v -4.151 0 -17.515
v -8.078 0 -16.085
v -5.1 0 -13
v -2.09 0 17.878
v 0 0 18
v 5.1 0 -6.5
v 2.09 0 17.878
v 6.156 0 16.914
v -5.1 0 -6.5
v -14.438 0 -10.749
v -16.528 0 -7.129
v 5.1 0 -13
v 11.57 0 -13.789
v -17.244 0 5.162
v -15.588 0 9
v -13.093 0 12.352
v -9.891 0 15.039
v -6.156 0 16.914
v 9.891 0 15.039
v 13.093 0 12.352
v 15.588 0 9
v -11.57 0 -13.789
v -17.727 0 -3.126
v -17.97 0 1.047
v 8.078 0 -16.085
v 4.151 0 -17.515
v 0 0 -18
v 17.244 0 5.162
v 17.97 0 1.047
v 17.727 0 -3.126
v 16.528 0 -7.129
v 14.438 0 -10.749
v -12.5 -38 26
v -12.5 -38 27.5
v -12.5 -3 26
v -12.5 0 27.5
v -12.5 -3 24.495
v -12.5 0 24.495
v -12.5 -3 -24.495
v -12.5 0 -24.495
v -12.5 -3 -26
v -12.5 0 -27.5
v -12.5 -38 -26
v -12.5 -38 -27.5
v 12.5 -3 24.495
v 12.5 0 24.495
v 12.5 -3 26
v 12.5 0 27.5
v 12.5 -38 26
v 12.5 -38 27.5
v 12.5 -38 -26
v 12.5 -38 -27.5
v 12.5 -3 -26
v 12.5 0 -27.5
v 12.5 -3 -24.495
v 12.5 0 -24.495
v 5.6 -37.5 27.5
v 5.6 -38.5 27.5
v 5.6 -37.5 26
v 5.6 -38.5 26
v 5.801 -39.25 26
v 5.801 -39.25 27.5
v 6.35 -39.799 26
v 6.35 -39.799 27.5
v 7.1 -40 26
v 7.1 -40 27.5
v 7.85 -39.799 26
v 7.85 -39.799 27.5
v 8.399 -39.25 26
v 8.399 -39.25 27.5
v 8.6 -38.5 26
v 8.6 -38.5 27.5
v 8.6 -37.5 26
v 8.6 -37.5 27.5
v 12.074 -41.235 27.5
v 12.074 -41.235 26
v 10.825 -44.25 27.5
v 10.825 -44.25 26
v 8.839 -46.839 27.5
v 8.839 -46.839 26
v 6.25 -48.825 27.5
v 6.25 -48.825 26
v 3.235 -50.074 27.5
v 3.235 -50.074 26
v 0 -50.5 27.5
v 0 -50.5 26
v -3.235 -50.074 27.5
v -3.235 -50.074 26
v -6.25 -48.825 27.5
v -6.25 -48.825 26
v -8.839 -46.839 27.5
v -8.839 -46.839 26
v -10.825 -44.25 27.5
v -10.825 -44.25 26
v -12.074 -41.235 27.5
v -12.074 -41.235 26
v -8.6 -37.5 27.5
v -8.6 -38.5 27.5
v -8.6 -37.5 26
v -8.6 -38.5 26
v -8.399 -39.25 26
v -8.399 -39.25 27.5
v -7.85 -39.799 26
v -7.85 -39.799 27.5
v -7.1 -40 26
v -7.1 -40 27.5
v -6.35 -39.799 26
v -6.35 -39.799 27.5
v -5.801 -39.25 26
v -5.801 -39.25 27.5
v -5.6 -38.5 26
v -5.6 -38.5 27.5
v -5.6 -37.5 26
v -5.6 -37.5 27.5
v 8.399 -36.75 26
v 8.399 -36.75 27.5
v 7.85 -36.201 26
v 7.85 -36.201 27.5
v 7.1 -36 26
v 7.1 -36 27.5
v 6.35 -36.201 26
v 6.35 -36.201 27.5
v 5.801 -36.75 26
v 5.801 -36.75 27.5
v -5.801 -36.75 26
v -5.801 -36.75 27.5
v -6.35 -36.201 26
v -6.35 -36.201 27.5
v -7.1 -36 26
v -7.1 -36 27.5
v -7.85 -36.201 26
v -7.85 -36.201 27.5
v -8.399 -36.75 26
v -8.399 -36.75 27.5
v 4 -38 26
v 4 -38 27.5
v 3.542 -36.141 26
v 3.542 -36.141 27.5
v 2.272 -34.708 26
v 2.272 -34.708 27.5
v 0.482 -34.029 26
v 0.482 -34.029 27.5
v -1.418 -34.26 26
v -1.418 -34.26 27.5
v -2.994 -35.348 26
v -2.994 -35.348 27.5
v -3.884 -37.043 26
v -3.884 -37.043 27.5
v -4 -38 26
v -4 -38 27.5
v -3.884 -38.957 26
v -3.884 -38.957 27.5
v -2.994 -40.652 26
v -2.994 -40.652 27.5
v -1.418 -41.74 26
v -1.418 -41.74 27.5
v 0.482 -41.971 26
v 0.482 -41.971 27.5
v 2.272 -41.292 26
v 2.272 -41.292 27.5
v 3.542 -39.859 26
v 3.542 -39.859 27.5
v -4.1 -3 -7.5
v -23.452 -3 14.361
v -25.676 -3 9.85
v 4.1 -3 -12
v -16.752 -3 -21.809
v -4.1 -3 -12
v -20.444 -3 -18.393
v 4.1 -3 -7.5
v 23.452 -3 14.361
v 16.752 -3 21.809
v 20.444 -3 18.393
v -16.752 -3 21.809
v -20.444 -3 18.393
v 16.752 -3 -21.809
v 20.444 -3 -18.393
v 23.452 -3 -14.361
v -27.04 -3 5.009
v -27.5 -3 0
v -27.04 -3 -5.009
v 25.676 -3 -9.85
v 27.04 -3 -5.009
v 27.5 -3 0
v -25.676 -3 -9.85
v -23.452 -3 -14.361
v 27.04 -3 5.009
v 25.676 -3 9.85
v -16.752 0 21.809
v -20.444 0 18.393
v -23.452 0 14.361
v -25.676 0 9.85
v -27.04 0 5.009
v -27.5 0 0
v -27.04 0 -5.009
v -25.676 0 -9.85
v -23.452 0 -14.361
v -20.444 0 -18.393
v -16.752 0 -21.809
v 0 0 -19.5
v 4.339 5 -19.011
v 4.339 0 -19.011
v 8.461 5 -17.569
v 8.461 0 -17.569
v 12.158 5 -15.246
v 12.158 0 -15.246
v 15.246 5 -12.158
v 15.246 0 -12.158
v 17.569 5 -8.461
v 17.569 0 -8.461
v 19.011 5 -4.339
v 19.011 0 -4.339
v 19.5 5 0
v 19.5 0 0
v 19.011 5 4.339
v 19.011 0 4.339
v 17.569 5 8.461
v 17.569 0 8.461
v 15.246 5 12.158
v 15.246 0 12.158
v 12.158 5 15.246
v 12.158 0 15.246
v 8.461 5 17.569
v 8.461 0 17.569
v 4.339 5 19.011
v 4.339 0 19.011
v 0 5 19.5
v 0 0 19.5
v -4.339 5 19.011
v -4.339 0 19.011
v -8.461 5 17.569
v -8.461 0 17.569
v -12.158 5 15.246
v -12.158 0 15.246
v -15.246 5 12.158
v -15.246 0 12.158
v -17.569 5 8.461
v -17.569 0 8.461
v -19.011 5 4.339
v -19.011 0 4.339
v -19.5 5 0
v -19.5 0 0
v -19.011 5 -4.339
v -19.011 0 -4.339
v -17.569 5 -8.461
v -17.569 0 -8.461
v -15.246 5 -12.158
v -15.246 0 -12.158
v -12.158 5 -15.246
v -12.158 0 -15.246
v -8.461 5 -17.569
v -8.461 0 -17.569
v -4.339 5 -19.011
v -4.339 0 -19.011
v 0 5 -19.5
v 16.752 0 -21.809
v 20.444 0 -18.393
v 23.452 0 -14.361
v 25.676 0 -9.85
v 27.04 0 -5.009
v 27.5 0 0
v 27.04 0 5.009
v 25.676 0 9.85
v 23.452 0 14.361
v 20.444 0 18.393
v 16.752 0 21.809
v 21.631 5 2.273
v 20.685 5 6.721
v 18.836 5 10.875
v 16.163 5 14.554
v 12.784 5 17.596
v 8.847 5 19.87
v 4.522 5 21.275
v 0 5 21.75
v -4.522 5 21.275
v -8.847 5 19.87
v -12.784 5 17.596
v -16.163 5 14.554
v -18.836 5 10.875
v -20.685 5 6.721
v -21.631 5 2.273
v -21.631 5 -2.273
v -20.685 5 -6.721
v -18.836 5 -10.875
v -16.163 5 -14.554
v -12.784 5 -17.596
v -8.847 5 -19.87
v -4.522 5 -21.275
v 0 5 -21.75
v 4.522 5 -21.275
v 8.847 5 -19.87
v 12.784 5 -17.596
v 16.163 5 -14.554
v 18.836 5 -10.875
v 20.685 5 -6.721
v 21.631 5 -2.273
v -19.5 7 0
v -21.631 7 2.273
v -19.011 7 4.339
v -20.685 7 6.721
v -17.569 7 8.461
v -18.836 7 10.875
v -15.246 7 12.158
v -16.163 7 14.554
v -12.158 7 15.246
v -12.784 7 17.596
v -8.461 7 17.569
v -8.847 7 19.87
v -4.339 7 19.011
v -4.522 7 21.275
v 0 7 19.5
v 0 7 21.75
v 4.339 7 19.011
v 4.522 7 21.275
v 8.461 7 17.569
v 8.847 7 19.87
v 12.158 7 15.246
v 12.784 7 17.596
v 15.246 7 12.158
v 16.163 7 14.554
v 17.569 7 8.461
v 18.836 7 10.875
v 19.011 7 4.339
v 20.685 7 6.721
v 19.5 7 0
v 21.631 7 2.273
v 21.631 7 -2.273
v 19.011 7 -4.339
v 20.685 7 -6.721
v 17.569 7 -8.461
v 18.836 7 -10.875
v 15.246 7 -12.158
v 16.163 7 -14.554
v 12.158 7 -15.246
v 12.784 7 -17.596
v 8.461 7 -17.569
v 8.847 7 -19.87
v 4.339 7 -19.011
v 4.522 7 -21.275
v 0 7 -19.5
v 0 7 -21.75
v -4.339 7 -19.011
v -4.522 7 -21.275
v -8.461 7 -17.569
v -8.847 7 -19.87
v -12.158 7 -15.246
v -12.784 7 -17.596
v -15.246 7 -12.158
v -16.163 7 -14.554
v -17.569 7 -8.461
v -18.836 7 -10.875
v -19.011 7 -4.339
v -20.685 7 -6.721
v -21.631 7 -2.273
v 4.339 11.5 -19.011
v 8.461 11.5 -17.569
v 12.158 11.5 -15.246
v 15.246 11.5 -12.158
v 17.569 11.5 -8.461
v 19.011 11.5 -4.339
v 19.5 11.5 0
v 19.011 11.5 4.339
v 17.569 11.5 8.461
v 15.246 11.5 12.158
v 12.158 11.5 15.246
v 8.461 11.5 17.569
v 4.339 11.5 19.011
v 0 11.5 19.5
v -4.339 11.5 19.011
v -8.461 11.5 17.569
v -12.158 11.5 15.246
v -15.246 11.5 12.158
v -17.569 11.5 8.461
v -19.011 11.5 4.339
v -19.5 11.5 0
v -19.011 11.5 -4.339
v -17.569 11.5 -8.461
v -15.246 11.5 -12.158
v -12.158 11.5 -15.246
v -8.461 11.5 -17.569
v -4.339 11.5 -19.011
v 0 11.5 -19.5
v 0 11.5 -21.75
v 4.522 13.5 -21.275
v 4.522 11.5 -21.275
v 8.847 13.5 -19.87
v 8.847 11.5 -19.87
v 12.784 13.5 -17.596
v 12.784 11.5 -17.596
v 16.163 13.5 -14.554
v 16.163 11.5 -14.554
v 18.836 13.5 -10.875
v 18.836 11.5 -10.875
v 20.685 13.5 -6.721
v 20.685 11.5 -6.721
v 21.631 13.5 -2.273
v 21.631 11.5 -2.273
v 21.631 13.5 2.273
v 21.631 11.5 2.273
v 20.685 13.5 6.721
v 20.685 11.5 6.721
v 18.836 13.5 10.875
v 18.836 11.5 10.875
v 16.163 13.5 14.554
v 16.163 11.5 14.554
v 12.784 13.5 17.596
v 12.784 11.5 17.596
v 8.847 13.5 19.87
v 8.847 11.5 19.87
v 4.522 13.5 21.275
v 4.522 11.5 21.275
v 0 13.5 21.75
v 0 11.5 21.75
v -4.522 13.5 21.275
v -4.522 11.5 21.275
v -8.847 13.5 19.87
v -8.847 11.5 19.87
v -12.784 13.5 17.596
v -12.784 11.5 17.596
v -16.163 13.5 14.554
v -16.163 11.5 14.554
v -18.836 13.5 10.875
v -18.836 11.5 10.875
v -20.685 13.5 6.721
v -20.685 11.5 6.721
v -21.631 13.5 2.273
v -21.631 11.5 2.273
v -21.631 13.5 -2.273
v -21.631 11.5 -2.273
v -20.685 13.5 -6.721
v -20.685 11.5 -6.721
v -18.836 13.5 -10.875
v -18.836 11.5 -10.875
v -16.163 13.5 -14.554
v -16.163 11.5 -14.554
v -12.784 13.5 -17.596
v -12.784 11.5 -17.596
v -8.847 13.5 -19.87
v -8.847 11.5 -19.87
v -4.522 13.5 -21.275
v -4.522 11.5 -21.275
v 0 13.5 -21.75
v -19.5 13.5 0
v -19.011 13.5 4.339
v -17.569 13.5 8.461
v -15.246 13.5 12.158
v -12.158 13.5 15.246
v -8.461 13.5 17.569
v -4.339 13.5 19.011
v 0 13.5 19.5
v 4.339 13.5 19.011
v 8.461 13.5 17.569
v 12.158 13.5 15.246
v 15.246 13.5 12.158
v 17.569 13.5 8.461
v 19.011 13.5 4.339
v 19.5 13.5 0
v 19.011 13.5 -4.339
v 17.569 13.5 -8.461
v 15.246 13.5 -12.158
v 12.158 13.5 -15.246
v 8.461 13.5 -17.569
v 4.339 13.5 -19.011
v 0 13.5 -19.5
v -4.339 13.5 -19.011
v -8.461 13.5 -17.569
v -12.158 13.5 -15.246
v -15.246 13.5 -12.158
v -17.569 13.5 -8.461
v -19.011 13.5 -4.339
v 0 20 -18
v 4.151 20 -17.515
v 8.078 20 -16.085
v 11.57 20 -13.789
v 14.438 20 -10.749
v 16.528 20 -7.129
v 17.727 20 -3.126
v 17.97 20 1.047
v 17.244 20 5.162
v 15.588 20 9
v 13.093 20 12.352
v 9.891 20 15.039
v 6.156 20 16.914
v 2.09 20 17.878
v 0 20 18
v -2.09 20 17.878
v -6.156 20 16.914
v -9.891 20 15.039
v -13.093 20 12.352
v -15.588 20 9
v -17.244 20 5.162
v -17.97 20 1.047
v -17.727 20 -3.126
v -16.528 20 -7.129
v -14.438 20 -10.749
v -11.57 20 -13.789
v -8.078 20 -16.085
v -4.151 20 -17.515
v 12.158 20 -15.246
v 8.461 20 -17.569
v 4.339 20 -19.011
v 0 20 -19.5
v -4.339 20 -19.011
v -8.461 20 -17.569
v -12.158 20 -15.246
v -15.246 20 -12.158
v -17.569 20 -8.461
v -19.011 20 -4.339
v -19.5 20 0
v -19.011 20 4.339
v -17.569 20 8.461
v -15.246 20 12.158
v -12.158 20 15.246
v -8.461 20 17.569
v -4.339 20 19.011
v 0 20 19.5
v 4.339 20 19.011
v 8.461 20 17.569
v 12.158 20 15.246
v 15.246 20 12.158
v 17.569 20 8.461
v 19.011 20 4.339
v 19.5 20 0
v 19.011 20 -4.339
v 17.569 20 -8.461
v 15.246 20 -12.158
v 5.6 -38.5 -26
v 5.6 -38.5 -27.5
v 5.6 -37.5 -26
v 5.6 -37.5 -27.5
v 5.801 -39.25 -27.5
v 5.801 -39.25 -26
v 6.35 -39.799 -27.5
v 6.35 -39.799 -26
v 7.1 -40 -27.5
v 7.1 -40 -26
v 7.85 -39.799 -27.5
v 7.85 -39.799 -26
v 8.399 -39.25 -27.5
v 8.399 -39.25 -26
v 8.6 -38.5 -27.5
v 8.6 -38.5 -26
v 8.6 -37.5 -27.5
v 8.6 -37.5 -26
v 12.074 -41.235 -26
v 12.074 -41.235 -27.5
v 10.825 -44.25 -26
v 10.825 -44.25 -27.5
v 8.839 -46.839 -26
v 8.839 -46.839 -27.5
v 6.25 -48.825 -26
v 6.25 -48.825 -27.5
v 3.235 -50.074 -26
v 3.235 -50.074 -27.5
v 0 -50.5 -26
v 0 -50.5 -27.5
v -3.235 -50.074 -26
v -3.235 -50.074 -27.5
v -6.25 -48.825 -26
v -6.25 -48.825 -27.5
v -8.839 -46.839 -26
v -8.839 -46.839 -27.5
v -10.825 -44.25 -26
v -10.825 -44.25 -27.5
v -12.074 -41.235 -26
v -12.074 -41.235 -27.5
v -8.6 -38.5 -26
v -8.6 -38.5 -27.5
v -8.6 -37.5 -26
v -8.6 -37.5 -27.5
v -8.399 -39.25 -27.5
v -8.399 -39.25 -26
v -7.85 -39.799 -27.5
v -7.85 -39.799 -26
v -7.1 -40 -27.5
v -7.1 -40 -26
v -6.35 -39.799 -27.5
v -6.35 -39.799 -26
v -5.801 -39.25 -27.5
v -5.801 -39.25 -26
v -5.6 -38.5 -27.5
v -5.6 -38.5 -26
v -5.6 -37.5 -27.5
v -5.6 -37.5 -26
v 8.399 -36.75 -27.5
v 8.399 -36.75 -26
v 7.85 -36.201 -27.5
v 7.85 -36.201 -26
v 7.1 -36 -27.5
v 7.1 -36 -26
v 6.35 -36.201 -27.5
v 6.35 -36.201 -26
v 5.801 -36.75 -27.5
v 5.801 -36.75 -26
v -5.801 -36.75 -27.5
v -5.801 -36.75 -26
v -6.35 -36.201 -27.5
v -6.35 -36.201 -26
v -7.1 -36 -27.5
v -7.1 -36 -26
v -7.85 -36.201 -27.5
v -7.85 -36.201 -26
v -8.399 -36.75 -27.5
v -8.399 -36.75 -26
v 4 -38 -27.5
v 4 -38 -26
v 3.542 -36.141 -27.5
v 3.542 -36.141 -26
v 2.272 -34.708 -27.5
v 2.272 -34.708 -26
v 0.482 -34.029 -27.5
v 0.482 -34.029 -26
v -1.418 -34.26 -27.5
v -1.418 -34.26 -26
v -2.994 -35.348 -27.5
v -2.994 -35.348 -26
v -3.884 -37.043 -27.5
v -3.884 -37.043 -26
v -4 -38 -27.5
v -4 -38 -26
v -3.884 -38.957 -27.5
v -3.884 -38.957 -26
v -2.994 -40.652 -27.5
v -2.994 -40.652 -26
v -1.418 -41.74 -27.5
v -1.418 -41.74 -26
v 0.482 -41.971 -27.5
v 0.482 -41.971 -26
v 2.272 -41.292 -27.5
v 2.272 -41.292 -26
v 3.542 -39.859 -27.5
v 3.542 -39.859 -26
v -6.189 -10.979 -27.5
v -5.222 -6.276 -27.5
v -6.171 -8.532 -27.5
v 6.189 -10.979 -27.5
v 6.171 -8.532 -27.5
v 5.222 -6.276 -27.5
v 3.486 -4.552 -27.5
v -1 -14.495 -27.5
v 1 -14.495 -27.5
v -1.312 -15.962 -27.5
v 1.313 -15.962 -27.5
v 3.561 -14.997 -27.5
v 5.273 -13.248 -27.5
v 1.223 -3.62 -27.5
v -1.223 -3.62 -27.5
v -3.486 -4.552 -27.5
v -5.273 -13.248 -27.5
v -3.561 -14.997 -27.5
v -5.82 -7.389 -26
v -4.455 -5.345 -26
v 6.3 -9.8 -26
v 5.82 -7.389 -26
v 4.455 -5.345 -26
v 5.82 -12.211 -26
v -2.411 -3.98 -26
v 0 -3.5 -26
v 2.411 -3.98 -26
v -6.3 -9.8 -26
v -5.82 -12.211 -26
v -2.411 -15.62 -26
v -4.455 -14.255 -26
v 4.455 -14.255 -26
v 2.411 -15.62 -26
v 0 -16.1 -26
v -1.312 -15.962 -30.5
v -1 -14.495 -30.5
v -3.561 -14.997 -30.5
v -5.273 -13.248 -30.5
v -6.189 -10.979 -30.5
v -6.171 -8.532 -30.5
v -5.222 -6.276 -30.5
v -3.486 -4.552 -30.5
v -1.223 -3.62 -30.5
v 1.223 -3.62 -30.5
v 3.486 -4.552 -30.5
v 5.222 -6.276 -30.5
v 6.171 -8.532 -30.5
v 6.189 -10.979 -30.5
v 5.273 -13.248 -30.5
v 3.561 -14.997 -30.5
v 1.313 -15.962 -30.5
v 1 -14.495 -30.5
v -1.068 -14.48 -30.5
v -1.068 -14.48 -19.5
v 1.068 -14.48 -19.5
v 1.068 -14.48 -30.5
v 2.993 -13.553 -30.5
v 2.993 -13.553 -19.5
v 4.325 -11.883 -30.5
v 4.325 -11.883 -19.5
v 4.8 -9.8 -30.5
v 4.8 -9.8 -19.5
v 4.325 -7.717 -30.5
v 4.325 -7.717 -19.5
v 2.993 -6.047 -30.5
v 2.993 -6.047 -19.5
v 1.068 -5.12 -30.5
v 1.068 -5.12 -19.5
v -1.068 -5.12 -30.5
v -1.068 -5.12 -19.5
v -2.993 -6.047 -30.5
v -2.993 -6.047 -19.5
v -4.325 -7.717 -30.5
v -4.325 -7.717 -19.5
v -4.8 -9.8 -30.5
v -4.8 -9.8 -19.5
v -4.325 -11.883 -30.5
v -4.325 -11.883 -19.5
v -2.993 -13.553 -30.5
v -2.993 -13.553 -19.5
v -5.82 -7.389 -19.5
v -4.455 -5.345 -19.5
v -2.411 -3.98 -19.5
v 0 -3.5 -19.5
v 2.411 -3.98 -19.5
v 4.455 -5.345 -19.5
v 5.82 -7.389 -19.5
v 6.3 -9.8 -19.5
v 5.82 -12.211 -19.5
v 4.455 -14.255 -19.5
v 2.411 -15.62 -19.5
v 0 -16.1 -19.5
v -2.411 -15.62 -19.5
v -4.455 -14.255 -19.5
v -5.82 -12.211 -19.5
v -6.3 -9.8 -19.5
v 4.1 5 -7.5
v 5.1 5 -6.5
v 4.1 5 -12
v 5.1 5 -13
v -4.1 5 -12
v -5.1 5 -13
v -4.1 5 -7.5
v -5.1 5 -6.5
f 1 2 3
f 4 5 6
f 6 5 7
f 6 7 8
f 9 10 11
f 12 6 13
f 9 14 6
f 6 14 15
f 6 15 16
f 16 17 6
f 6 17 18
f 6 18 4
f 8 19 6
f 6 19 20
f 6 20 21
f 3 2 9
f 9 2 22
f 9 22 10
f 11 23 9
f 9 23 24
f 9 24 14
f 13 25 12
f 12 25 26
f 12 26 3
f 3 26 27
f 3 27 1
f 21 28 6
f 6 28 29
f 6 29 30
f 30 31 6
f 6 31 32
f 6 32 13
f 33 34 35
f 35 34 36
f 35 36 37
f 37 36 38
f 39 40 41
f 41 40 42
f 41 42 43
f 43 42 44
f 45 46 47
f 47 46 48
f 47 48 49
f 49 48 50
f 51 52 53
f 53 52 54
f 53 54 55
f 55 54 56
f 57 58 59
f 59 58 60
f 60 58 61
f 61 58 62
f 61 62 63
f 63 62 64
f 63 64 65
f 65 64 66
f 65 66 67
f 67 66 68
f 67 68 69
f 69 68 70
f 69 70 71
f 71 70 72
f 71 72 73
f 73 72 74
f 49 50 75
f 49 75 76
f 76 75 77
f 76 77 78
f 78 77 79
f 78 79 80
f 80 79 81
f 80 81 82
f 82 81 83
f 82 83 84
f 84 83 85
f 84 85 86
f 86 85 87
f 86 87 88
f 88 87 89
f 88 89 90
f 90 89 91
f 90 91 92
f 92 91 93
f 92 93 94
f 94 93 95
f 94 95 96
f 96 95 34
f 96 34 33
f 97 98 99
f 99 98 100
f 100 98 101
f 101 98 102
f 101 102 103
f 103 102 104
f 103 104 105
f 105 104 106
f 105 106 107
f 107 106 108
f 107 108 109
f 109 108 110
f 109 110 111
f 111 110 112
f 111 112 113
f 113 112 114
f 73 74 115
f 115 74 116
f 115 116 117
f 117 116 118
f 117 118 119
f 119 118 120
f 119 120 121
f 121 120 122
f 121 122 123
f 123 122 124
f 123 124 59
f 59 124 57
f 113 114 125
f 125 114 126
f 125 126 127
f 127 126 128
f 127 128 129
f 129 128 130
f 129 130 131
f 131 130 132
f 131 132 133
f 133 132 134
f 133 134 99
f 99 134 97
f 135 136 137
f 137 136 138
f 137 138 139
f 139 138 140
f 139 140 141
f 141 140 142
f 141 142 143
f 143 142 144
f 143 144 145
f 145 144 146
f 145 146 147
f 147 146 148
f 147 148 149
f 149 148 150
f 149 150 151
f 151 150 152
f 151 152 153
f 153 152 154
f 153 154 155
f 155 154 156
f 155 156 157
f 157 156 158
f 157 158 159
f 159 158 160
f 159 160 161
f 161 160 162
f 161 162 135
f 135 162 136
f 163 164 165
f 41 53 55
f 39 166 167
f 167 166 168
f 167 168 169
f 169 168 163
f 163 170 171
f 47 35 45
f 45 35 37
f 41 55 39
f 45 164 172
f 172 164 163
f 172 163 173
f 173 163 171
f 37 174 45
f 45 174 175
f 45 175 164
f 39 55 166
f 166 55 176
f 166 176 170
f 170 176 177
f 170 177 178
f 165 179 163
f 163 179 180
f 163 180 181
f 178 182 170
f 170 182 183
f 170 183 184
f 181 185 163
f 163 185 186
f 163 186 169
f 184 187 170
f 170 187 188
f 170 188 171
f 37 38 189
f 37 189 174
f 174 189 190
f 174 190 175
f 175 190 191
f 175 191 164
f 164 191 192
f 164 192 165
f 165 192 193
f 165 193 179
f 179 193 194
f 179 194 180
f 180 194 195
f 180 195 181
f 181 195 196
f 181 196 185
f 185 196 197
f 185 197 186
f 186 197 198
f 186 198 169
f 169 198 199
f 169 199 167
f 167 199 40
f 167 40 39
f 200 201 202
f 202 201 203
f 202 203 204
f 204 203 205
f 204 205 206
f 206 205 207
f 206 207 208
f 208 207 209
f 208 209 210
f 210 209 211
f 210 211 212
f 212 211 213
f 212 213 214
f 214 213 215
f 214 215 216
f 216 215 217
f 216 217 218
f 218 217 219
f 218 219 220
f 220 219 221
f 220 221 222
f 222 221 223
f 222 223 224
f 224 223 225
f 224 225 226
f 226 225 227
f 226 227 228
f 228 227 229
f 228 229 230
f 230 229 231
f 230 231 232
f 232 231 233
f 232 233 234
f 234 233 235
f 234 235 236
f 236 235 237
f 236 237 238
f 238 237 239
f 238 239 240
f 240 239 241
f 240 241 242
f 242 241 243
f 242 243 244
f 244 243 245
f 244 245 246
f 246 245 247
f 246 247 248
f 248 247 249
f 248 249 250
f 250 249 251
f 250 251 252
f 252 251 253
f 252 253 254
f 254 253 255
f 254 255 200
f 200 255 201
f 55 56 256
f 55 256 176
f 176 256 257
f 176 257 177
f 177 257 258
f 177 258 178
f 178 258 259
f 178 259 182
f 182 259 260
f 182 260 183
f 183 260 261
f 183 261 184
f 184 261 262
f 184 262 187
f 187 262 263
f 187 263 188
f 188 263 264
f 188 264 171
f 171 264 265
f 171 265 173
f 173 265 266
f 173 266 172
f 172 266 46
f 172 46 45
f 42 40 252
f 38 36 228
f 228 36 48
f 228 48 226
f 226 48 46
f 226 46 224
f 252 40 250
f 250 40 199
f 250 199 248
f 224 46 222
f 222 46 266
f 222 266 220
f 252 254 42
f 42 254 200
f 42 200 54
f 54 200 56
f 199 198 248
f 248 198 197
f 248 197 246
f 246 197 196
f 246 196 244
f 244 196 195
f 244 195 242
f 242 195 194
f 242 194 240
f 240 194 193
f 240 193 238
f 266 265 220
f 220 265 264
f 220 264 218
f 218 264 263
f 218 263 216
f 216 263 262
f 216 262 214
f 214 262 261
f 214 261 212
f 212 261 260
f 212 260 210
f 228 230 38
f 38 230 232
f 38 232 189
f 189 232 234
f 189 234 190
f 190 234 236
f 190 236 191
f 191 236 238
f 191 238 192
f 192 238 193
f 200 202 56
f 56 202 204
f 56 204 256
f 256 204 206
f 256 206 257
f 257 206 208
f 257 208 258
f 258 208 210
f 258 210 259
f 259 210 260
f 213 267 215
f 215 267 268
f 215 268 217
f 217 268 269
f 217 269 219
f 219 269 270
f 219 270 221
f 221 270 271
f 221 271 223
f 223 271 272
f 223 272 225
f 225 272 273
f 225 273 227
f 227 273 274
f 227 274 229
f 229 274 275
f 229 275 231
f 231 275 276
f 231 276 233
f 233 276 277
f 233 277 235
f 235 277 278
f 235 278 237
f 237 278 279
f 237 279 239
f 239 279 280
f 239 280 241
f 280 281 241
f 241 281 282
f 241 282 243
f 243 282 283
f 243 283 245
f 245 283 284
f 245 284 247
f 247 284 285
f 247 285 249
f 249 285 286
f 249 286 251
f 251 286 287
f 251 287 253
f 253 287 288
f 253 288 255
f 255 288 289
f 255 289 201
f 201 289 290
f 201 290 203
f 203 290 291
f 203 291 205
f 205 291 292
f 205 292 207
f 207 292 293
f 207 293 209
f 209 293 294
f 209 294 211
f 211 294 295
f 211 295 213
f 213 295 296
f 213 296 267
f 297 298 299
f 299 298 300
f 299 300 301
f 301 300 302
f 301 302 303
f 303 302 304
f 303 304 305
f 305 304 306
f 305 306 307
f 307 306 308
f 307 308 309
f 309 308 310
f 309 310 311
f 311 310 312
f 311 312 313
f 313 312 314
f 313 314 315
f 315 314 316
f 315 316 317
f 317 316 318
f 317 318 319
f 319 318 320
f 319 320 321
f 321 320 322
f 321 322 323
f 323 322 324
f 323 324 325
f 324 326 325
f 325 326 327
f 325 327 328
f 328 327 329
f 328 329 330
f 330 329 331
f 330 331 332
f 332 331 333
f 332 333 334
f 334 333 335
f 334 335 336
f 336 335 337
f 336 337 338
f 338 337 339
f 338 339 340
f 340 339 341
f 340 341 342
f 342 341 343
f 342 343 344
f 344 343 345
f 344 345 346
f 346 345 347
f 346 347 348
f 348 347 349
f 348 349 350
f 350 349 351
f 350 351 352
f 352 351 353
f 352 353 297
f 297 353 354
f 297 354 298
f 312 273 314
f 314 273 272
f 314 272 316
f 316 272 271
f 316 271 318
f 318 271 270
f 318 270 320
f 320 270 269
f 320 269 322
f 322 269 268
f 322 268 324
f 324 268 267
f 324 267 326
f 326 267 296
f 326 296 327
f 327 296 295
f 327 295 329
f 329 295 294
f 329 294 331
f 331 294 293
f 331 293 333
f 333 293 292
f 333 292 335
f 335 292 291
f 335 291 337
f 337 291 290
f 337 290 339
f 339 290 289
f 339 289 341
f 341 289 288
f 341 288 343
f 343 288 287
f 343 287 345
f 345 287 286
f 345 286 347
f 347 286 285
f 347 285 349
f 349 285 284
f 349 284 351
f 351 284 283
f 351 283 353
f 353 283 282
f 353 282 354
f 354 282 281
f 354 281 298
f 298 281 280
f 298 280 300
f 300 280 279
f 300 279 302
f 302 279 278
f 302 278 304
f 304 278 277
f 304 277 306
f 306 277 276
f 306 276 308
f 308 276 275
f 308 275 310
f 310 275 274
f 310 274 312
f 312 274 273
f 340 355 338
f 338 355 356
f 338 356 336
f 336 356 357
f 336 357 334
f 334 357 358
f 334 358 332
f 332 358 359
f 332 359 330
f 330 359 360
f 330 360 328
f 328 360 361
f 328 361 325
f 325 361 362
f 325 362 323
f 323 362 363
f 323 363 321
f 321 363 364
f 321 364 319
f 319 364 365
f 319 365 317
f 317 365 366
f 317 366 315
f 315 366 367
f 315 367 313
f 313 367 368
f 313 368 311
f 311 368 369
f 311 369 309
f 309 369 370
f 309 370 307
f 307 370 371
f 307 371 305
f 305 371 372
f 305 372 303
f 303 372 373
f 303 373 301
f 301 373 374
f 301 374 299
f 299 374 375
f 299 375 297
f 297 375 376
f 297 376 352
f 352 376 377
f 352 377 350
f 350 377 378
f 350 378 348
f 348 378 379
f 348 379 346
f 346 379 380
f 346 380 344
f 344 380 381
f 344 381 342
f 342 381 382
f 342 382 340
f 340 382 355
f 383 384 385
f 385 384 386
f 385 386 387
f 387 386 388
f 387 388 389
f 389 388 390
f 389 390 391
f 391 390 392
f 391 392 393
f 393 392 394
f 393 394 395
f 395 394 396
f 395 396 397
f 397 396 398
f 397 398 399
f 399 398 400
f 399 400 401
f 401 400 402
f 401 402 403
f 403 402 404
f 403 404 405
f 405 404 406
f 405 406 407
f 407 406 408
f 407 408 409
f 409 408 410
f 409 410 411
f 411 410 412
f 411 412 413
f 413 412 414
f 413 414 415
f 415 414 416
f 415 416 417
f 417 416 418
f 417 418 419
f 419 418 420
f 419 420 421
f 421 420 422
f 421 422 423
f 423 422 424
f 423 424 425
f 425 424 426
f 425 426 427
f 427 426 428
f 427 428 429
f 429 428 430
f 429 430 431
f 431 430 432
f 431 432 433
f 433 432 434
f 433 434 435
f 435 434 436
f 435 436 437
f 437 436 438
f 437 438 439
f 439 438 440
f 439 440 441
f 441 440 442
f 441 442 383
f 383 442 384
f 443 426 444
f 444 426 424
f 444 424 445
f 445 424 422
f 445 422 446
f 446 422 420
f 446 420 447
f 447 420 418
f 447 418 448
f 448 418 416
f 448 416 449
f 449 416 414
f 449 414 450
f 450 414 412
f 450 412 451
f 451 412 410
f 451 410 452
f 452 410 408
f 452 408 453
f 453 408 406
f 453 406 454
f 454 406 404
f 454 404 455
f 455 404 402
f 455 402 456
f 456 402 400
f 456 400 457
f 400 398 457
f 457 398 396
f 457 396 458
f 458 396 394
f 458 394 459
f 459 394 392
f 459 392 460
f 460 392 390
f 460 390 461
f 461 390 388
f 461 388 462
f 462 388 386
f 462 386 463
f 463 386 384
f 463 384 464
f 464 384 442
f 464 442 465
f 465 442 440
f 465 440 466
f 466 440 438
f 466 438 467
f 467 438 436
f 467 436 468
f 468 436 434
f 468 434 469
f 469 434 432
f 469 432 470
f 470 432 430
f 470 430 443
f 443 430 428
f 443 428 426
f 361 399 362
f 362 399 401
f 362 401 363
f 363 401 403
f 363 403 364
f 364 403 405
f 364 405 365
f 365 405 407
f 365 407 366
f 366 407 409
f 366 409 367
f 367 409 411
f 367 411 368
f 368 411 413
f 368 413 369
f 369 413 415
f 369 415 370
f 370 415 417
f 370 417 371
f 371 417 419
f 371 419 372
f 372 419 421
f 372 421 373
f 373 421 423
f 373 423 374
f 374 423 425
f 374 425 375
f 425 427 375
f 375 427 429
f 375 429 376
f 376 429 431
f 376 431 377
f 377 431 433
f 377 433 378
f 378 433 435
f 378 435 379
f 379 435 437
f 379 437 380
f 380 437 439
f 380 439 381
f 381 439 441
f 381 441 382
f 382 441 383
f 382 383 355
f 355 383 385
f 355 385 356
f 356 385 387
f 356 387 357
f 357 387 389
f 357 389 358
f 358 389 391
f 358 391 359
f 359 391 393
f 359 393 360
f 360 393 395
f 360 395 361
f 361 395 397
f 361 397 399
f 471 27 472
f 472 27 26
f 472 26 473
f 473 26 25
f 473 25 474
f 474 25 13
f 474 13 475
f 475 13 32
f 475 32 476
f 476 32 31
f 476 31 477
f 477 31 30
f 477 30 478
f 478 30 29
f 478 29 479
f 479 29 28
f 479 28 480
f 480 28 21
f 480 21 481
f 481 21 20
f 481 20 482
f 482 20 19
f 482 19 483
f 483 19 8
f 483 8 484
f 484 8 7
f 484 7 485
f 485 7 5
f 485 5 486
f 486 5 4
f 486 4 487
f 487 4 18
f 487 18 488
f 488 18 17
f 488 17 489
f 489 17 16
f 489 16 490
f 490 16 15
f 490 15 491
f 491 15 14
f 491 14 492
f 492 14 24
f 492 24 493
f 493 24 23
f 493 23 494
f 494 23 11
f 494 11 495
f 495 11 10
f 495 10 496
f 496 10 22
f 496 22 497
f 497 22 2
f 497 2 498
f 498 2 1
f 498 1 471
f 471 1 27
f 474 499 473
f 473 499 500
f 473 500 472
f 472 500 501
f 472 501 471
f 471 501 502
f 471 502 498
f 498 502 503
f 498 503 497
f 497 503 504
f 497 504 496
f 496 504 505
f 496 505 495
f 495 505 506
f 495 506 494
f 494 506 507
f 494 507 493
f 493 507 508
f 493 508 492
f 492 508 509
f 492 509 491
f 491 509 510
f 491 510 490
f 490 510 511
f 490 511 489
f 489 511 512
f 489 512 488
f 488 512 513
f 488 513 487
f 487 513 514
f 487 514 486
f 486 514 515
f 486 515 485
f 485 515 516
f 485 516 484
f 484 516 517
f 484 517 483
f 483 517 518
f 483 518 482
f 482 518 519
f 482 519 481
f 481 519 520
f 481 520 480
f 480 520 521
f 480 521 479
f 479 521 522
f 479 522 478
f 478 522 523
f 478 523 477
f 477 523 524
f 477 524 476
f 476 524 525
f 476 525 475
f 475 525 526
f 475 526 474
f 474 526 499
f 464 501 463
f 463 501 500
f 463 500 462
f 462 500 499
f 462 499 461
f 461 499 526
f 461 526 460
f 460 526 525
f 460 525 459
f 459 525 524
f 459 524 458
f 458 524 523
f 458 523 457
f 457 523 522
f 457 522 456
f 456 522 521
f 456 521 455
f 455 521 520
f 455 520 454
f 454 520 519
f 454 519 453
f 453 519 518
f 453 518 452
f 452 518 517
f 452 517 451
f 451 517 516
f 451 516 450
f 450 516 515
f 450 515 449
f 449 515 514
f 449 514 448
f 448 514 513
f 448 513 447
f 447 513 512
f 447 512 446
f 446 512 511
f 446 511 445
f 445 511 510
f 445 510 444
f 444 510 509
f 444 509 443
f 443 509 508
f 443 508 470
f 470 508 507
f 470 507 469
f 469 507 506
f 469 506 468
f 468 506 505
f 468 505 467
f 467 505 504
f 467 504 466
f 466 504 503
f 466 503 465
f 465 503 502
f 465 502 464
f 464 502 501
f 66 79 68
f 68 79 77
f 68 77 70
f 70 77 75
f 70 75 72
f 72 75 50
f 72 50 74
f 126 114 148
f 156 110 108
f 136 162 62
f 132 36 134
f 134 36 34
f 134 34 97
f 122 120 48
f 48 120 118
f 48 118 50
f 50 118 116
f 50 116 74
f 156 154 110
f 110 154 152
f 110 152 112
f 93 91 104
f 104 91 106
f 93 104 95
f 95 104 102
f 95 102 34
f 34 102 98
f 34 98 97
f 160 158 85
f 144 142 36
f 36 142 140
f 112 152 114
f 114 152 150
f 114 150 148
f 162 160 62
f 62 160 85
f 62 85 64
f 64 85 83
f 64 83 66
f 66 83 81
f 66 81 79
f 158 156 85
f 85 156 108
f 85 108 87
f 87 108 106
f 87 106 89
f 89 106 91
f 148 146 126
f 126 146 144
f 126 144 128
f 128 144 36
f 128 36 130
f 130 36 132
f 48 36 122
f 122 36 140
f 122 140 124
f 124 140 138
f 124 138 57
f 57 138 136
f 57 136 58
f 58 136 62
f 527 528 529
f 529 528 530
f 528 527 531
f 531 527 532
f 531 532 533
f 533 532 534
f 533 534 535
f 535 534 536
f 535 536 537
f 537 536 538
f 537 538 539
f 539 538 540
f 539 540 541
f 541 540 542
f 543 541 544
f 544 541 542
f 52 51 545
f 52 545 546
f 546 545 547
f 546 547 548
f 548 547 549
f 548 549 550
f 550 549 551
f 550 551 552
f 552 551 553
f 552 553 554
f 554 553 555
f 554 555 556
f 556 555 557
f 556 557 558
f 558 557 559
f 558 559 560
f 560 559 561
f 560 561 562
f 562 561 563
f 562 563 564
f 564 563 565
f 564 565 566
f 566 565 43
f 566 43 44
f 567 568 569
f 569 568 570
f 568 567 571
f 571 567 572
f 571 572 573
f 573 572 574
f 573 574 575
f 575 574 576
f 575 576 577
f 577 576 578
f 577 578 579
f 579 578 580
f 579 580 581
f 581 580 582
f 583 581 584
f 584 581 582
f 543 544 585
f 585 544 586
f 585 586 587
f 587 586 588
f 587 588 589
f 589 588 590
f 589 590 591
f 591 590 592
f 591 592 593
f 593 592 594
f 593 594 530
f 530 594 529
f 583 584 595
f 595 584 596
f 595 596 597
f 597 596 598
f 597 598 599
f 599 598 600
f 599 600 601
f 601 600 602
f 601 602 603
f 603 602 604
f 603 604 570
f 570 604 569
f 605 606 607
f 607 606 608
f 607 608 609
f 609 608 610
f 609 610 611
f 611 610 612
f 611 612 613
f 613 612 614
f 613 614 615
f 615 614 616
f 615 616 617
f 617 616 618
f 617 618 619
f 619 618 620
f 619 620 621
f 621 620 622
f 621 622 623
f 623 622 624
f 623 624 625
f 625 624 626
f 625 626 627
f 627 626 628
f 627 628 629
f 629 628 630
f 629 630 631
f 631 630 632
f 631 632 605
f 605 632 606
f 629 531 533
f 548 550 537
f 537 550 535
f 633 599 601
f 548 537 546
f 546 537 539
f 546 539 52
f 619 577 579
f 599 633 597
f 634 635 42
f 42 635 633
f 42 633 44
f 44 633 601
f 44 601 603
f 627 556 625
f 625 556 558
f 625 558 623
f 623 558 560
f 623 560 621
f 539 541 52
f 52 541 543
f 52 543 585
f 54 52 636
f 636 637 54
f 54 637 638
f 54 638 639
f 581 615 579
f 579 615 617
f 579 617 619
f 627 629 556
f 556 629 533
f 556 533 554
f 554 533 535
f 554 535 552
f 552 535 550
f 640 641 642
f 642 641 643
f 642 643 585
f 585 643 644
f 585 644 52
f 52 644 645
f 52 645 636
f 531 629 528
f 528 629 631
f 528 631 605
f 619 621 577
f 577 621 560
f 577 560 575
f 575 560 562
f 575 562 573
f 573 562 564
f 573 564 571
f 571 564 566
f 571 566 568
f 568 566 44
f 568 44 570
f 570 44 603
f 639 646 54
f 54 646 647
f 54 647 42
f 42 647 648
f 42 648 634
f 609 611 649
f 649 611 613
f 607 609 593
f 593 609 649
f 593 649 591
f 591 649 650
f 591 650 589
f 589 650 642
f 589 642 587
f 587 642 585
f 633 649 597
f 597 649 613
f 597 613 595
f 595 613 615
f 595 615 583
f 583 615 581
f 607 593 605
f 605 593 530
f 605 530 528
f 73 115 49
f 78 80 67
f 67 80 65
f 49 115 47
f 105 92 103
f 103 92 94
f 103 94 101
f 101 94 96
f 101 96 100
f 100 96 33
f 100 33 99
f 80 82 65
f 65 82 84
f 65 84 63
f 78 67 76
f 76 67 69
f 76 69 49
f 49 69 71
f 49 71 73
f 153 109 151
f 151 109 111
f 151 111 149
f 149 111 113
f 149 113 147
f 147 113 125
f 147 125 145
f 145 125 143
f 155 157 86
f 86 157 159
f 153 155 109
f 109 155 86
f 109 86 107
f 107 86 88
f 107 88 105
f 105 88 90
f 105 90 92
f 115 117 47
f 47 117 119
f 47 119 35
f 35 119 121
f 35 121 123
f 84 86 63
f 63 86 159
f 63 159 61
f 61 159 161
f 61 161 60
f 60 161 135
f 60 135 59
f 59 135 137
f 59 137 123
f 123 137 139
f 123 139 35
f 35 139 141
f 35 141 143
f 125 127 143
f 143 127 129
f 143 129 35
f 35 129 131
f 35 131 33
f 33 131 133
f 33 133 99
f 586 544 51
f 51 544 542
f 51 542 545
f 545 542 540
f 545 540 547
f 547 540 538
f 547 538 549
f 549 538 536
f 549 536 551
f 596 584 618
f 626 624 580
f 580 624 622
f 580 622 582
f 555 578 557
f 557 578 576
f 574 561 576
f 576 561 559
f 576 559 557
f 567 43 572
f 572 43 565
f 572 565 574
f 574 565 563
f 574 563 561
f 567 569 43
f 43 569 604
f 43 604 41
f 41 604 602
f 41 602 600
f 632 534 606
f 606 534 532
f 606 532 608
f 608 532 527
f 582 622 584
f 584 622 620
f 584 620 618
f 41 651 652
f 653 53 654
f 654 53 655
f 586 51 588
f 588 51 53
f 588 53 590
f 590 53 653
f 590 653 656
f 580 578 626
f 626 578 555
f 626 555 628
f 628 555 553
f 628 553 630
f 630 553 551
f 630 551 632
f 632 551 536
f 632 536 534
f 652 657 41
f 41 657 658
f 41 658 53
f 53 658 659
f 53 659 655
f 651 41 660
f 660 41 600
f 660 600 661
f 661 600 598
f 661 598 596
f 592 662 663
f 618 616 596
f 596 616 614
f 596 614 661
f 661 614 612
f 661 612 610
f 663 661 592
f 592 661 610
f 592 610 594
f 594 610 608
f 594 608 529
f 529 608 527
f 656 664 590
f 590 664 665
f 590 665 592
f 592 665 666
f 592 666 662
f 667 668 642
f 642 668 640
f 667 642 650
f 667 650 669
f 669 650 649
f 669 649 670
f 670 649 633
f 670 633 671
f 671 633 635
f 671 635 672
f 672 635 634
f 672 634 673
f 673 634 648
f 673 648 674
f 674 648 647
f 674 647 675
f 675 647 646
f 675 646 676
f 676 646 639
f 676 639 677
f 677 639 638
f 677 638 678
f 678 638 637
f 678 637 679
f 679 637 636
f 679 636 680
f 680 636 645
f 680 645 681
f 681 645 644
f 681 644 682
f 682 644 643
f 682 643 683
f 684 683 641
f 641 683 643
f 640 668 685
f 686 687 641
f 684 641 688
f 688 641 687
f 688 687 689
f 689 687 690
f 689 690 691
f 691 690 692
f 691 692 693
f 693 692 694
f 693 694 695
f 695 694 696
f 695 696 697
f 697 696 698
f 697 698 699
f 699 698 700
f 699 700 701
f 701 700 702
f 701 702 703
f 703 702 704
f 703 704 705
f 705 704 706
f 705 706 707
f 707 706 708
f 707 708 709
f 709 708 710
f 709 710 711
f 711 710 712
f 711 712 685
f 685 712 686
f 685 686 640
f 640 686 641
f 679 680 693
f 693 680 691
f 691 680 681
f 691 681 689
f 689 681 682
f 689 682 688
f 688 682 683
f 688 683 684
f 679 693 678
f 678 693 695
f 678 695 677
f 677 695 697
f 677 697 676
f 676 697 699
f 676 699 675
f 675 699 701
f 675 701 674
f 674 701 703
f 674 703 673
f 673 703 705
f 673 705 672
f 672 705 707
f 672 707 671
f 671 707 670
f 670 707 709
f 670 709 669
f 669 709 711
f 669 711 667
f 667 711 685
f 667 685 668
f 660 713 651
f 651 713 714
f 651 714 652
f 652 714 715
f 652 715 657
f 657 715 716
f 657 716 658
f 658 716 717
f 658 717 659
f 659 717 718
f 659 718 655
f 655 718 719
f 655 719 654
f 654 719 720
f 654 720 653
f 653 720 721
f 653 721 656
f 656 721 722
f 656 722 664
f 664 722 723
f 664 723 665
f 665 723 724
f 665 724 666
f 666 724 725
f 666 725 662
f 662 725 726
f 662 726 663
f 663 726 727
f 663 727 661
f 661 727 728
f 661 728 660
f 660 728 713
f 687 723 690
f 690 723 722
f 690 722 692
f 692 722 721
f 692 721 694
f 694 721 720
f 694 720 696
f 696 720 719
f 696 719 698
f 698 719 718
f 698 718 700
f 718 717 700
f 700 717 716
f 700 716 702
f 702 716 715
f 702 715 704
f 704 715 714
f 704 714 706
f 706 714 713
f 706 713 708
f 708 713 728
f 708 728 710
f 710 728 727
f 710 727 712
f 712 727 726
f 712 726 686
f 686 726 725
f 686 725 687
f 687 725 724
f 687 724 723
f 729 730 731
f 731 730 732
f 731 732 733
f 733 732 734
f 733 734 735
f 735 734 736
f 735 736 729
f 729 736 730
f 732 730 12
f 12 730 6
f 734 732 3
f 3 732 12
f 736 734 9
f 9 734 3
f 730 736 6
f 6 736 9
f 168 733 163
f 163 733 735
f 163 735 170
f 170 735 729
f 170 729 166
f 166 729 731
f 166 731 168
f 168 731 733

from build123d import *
from build123d.topology import SkipClean

# Parameters (mm, degrees)
SKETCH_1_R           = 19.5
SKETCH_1_R_2         = 18
EXTRUDE_1_DEPTH      = 20
SKETCH_3_R           = 27.5
EXTRUDE_2_DEPTH      = 3
EXTRUDE_START        = 2
SKETCH_25_R          = 21.75
SKETCH_25_R_2        = 19.5
EXTRUDE_12_DEPTH     = 2
EXTRUDE_START_2      = -1
SKETCH_26_R          = 21.75
SKETCH_26_R_2        = 19.5
EXTRUDE_13_DEPTH     = 2
SKETCH_27_W          = 25
SKETCH_27_H          = 53.5
EXTRUDE_14_DEPTH     = 3
SKETCH_28_R          = 4
EXTRUDE_17_DEPTH     = 1.5
EXTRUDE_START_3      = -53.5
SKETCH_28_25_R       = 4
EXTRUDE_25_DEPTH     = 53.5
CUT_EXTRUDE_START    = -52
SKETCH_28_27_R       = 4
CUT_EXTRUDE_15_DEPTH = 52
EXTRUDE_24_DEPTH     = 3
EXTRUDE_START_4      = -8
SKETCH_38_R          = 6.3
SKETCH_38_R_2        = 4.8
EXTRUDE_23_DEPTH     = 8
CUT_EXTRUDE_START_2  = -9.5
CUT_EXTRUDE_10_DEPTH = 9.5
SKETCH_34_W          = 10.2
SKETCH_34_H          = 6.5
SKETCH_34_W_2        = 8.2
SKETCH_34_H_2        = 4.5
EXTRUDE_22_DEPTH     = 5
SKETCH_37_W          = 8.2
SKETCH_37_H          = 4.5
CUT_EXTRUDE_9_DEPTH  = 5


with BuildPart() as part:
    # 草圖1 → 填料-伸長1 (new body)
    with BuildSketch(Plane(origin=(0, 0, 0), x_dir=(1, 0, 0), z_dir=(0, 1, 0))):
        Circle(SKETCH_1_R)
        Circle(SKETCH_1_R_2, mode=Mode.SUBTRACT)
    extrude(amount=EXTRUDE_1_DEPTH)

    # 草圖3 → 填料-伸長2 (add)
    with BuildSketch(Plane.XZ):
        Circle(SKETCH_3_R)
    extrude(amount=EXTRUDE_2_DEPTH)

    # 草圖25 → 填料-伸長12 (add)
    with BuildSketch(Plane(origin=(0, 7, 0), x_dir=(-1, 0, 0), z_dir=(0, -1, 0)).offset(EXTRUDE_START)):
        Circle(SKETCH_25_R)
        Circle(SKETCH_25_R_2, mode=Mode.SUBTRACT)
    extrude(amount=-EXTRUDE_12_DEPTH)

    # 草圖26 → 填料-伸長13 (add)
    with BuildSketch(Plane(origin=(0, 10.5, 0), x_dir=(-1, 0, 0), z_dir=(0, -1, 0)).offset(EXTRUDE_START_2)):
        Circle(SKETCH_26_R)
        Circle(SKETCH_26_R_2, mode=Mode.SUBTRACT)
    extrude(amount=-EXTRUDE_13_DEPTH)

    # 草圖27 → 填料-伸長14 (add)
    with BuildSketch(Plane.XZ.offset(3)):
        with Locations((0, 0.75)):
            Rectangle(SKETCH_27_W, SKETCH_27_H)
    extrude(amount=-EXTRUDE_14_DEPTH)

    # 草圖28 → 填料-伸長17 (add)
    with BuildSketch(Plane(origin=(0, 0, -26), x_dir=(-1, 0, 0), z_dir=(0, 0, -1))):
        with BuildLine():
            Line((12.5, 0), (-12.5, 0))
            Line((-12.5, 0), (-12.5, -38))
            ThreePointArc((-12.5, -38), (0, -50.5), (12.5, -38))
            Line((12.5, -38), (12.5, 0))
        make_face()
        with BuildLine():
            Line((8.6, -37.5), (8.6, -38.5))
            ThreePointArc((8.6, -38.5), (7.1, -40), (5.6, -38.5))
            Line((5.6, -38.5), (5.6, -37.5))
            ThreePointArc((5.6, -37.5), (7.1, -36), (8.6, -37.5))
        make_face(mode=Mode.SUBTRACT)
        with Locations((0, -38)):
            Circle(SKETCH_28_R, mode=Mode.SUBTRACT)
        with BuildLine():
            Line((-5.6, -37.5), (-5.6, -38.5))
            ThreePointArc((-5.6, -38.5), (-7.1, -40), (-8.6, -38.5))
            Line((-8.6, -38.5), (-8.6, -37.5))
            ThreePointArc((-8.6, -37.5), (-7.1, -36), (-5.6, -37.5))
        make_face(mode=Mode.SUBTRACT)
    extrude(amount=EXTRUDE_17_DEPTH)

    # 草圖28<25> → 填料-伸長25 (add)
    with BuildSketch(Plane(origin=(0, 0, -26), x_dir=(-1, 0, 0), z_dir=(0, 0, -1)).offset(EXTRUDE_START_3)):
        with BuildLine():
            Line((12.5, -38), (12.5, -3))
            Line((12.5, -3), (-12.5, -3))
            Line((-12.5, -3), (-12.5, -38))
            ThreePointArc((-12.5, -38), (0, -50.5), (12.5, -38))
        make_face()
        with BuildLine():
            Line((8.6, -37.5), (8.6, -38.5))
            ThreePointArc((8.6, -38.5), (7.1, -40), (5.6, -38.5))
            Line((5.6, -38.5), (5.6, -37.5))
            ThreePointArc((5.6, -37.5), (7.1, -36), (8.6, -37.5))
        make_face(mode=Mode.SUBTRACT)
        with Locations((0, -38)):
            Circle(SKETCH_28_25_R, mode=Mode.SUBTRACT)
        with BuildLine():
            Line((-5.6, -37.5), (-5.6, -38.5))
            ThreePointArc((-5.6, -38.5), (-7.1, -40), (-8.6, -38.5))
            Line((-8.6, -38.5), (-8.6, -37.5))
            ThreePointArc((-8.6, -37.5), (-7.1, -36), (-5.6, -37.5))
        make_face(mode=Mode.SUBTRACT)
    extrude(amount=EXTRUDE_25_DEPTH)

    # 草圖28<27> → 除料-伸長15 (cut)
    with BuildSketch(Plane(origin=(0, 0, -26), x_dir=(-1, 0, 0), z_dir=(0, 0, -1)).offset(CUT_EXTRUDE_START)):
        with BuildLine():
            Line((12.5, -38), (12.5, -3))
            Line((12.5, -3), (-12.5, -3))
            Line((-12.5, -3), (-12.5, -38))
            ThreePointArc((-12.5, -38), (0, -50.5), (12.5, -38))
        make_face()
        with BuildLine():
            Line((8.6, -37.5), (8.6, -38.5))
            ThreePointArc((8.6, -38.5), (7.1, -40), (5.6, -38.5))
            Line((5.6, -38.5), (5.6, -37.5))
            ThreePointArc((5.6, -37.5), (7.1, -36), (8.6, -37.5))
        make_face(mode=Mode.SUBTRACT)
        with Locations((0, -38)):
            Circle(SKETCH_28_27_R, mode=Mode.SUBTRACT)
        with BuildLine():
            Line((-5.6, -37.5), (-5.6, -38.5))
            ThreePointArc((-5.6, -38.5), (-7.1, -40), (-8.6, -38.5))
            Line((-8.6, -38.5), (-8.6, -37.5))
            ThreePointArc((-8.6, -37.5), (-7.1, -36), (-5.6, -37.5))
        make_face(mode=Mode.SUBTRACT)
    extrude(amount=CUT_EXTRUDE_15_DEPTH, mode=Mode.SUBTRACT)

    # 草圖38<4> → 填料-伸長24 (add)
    with BuildSketch(Plane(origin=(0, 0, -27.5), x_dir=(-1, 0, 0), z_dir=(0, 0, -1))):
        with BuildLine():
            Line((-1.3125, -15.961764662), (-1, -14.494677838))
            ThreePointArc((-1, -14.494677838), (-3.019933774, -6.069048379), (4.8, -9.8))
            ThreePointArc((4.8, -9.8), (3.730951621, -12.819933774), (1, -14.494677838))
            Line((1, -14.494677838), (1.3125, -15.961764662))
            ThreePointArc((1.3125, -15.961764662), (4.896874003, -13.763663079), (6.3, -9.8))
            ThreePointArc((6.3, -9.8), (-3.963663079, -4.903125997), (-1.3125, -15.961764662))
        make_face()
    extrude(amount=EXTRUDE_24_DEPTH)

    # 草圖38 → 填料-伸長23 (add)
    with BuildSketch(Plane(origin=(0, 0, -27.5), x_dir=(-1, 0, 0), z_dir=(0, 0, -1)).offset(EXTRUDE_START_4)):
        with Locations((0, -9.8)):
            Circle(SKETCH_38_R)
        with Locations((0, -9.8)):
            Circle(SKETCH_38_R_2, mode=Mode.SUBTRACT)
    extrude(amount=EXTRUDE_23_DEPTH)

    # 草圖38<3> → 除料-伸長10 (cut)
    with SkipClean():  # the faces are left unmerged after this step: merging them gives an invalid solid
        with BuildSketch(Plane(origin=(0, 0, -27.5), x_dir=(-1, 0, 0), z_dir=(0, 0, -1)).offset(CUT_EXTRUDE_START_2)):
            with BuildLine():
                ThreePointArc((4.8, -9.8), (-3.019933774, -6.069048379), (-1, -14.494677838))
                ThreePointArc((-1, -14.494677838), (0, -14.6), (1, -14.494677838))
                ThreePointArc((1, -14.494677838), (3.730951621, -12.819933774), (4.8, -9.8))
            make_face()
        extrude(amount=CUT_EXTRUDE_10_DEPTH, mode=Mode.SUBTRACT)

    # 草圖34 → 填料-伸長22 (add)
    with SkipClean():  # the faces are left unmerged after this step: merging them gives an invalid solid
        with BuildSketch(Plane(origin=(0, 0, 0), x_dir=(1, 0, 0), z_dir=(0, 1, 0))):
            with Locations((0, 9.75)):
                Rectangle(SKETCH_34_W, SKETCH_34_H)
            with Locations((0, 9.75)):
                Rectangle(SKETCH_34_W_2, SKETCH_34_H_2, mode=Mode.SUBTRACT)
        extrude(amount=EXTRUDE_22_DEPTH)

    # 草圖37 → 除料-伸長9 (cut)
    with SkipClean():  # the faces are left unmerged after this step: merging them gives an invalid solid
        with BuildSketch(Plane(origin=(0, 0, 0), x_dir=(1, 0, 0), z_dir=(0, 1, 0))):
            with Locations((0, 9.75)):
                Rectangle(SKETCH_37_W, SKETCH_37_H)
        extrude(amount=-CUT_EXTRUDE_9_DEPTH, mode=Mode.SUBTRACT)


solid = part.part
